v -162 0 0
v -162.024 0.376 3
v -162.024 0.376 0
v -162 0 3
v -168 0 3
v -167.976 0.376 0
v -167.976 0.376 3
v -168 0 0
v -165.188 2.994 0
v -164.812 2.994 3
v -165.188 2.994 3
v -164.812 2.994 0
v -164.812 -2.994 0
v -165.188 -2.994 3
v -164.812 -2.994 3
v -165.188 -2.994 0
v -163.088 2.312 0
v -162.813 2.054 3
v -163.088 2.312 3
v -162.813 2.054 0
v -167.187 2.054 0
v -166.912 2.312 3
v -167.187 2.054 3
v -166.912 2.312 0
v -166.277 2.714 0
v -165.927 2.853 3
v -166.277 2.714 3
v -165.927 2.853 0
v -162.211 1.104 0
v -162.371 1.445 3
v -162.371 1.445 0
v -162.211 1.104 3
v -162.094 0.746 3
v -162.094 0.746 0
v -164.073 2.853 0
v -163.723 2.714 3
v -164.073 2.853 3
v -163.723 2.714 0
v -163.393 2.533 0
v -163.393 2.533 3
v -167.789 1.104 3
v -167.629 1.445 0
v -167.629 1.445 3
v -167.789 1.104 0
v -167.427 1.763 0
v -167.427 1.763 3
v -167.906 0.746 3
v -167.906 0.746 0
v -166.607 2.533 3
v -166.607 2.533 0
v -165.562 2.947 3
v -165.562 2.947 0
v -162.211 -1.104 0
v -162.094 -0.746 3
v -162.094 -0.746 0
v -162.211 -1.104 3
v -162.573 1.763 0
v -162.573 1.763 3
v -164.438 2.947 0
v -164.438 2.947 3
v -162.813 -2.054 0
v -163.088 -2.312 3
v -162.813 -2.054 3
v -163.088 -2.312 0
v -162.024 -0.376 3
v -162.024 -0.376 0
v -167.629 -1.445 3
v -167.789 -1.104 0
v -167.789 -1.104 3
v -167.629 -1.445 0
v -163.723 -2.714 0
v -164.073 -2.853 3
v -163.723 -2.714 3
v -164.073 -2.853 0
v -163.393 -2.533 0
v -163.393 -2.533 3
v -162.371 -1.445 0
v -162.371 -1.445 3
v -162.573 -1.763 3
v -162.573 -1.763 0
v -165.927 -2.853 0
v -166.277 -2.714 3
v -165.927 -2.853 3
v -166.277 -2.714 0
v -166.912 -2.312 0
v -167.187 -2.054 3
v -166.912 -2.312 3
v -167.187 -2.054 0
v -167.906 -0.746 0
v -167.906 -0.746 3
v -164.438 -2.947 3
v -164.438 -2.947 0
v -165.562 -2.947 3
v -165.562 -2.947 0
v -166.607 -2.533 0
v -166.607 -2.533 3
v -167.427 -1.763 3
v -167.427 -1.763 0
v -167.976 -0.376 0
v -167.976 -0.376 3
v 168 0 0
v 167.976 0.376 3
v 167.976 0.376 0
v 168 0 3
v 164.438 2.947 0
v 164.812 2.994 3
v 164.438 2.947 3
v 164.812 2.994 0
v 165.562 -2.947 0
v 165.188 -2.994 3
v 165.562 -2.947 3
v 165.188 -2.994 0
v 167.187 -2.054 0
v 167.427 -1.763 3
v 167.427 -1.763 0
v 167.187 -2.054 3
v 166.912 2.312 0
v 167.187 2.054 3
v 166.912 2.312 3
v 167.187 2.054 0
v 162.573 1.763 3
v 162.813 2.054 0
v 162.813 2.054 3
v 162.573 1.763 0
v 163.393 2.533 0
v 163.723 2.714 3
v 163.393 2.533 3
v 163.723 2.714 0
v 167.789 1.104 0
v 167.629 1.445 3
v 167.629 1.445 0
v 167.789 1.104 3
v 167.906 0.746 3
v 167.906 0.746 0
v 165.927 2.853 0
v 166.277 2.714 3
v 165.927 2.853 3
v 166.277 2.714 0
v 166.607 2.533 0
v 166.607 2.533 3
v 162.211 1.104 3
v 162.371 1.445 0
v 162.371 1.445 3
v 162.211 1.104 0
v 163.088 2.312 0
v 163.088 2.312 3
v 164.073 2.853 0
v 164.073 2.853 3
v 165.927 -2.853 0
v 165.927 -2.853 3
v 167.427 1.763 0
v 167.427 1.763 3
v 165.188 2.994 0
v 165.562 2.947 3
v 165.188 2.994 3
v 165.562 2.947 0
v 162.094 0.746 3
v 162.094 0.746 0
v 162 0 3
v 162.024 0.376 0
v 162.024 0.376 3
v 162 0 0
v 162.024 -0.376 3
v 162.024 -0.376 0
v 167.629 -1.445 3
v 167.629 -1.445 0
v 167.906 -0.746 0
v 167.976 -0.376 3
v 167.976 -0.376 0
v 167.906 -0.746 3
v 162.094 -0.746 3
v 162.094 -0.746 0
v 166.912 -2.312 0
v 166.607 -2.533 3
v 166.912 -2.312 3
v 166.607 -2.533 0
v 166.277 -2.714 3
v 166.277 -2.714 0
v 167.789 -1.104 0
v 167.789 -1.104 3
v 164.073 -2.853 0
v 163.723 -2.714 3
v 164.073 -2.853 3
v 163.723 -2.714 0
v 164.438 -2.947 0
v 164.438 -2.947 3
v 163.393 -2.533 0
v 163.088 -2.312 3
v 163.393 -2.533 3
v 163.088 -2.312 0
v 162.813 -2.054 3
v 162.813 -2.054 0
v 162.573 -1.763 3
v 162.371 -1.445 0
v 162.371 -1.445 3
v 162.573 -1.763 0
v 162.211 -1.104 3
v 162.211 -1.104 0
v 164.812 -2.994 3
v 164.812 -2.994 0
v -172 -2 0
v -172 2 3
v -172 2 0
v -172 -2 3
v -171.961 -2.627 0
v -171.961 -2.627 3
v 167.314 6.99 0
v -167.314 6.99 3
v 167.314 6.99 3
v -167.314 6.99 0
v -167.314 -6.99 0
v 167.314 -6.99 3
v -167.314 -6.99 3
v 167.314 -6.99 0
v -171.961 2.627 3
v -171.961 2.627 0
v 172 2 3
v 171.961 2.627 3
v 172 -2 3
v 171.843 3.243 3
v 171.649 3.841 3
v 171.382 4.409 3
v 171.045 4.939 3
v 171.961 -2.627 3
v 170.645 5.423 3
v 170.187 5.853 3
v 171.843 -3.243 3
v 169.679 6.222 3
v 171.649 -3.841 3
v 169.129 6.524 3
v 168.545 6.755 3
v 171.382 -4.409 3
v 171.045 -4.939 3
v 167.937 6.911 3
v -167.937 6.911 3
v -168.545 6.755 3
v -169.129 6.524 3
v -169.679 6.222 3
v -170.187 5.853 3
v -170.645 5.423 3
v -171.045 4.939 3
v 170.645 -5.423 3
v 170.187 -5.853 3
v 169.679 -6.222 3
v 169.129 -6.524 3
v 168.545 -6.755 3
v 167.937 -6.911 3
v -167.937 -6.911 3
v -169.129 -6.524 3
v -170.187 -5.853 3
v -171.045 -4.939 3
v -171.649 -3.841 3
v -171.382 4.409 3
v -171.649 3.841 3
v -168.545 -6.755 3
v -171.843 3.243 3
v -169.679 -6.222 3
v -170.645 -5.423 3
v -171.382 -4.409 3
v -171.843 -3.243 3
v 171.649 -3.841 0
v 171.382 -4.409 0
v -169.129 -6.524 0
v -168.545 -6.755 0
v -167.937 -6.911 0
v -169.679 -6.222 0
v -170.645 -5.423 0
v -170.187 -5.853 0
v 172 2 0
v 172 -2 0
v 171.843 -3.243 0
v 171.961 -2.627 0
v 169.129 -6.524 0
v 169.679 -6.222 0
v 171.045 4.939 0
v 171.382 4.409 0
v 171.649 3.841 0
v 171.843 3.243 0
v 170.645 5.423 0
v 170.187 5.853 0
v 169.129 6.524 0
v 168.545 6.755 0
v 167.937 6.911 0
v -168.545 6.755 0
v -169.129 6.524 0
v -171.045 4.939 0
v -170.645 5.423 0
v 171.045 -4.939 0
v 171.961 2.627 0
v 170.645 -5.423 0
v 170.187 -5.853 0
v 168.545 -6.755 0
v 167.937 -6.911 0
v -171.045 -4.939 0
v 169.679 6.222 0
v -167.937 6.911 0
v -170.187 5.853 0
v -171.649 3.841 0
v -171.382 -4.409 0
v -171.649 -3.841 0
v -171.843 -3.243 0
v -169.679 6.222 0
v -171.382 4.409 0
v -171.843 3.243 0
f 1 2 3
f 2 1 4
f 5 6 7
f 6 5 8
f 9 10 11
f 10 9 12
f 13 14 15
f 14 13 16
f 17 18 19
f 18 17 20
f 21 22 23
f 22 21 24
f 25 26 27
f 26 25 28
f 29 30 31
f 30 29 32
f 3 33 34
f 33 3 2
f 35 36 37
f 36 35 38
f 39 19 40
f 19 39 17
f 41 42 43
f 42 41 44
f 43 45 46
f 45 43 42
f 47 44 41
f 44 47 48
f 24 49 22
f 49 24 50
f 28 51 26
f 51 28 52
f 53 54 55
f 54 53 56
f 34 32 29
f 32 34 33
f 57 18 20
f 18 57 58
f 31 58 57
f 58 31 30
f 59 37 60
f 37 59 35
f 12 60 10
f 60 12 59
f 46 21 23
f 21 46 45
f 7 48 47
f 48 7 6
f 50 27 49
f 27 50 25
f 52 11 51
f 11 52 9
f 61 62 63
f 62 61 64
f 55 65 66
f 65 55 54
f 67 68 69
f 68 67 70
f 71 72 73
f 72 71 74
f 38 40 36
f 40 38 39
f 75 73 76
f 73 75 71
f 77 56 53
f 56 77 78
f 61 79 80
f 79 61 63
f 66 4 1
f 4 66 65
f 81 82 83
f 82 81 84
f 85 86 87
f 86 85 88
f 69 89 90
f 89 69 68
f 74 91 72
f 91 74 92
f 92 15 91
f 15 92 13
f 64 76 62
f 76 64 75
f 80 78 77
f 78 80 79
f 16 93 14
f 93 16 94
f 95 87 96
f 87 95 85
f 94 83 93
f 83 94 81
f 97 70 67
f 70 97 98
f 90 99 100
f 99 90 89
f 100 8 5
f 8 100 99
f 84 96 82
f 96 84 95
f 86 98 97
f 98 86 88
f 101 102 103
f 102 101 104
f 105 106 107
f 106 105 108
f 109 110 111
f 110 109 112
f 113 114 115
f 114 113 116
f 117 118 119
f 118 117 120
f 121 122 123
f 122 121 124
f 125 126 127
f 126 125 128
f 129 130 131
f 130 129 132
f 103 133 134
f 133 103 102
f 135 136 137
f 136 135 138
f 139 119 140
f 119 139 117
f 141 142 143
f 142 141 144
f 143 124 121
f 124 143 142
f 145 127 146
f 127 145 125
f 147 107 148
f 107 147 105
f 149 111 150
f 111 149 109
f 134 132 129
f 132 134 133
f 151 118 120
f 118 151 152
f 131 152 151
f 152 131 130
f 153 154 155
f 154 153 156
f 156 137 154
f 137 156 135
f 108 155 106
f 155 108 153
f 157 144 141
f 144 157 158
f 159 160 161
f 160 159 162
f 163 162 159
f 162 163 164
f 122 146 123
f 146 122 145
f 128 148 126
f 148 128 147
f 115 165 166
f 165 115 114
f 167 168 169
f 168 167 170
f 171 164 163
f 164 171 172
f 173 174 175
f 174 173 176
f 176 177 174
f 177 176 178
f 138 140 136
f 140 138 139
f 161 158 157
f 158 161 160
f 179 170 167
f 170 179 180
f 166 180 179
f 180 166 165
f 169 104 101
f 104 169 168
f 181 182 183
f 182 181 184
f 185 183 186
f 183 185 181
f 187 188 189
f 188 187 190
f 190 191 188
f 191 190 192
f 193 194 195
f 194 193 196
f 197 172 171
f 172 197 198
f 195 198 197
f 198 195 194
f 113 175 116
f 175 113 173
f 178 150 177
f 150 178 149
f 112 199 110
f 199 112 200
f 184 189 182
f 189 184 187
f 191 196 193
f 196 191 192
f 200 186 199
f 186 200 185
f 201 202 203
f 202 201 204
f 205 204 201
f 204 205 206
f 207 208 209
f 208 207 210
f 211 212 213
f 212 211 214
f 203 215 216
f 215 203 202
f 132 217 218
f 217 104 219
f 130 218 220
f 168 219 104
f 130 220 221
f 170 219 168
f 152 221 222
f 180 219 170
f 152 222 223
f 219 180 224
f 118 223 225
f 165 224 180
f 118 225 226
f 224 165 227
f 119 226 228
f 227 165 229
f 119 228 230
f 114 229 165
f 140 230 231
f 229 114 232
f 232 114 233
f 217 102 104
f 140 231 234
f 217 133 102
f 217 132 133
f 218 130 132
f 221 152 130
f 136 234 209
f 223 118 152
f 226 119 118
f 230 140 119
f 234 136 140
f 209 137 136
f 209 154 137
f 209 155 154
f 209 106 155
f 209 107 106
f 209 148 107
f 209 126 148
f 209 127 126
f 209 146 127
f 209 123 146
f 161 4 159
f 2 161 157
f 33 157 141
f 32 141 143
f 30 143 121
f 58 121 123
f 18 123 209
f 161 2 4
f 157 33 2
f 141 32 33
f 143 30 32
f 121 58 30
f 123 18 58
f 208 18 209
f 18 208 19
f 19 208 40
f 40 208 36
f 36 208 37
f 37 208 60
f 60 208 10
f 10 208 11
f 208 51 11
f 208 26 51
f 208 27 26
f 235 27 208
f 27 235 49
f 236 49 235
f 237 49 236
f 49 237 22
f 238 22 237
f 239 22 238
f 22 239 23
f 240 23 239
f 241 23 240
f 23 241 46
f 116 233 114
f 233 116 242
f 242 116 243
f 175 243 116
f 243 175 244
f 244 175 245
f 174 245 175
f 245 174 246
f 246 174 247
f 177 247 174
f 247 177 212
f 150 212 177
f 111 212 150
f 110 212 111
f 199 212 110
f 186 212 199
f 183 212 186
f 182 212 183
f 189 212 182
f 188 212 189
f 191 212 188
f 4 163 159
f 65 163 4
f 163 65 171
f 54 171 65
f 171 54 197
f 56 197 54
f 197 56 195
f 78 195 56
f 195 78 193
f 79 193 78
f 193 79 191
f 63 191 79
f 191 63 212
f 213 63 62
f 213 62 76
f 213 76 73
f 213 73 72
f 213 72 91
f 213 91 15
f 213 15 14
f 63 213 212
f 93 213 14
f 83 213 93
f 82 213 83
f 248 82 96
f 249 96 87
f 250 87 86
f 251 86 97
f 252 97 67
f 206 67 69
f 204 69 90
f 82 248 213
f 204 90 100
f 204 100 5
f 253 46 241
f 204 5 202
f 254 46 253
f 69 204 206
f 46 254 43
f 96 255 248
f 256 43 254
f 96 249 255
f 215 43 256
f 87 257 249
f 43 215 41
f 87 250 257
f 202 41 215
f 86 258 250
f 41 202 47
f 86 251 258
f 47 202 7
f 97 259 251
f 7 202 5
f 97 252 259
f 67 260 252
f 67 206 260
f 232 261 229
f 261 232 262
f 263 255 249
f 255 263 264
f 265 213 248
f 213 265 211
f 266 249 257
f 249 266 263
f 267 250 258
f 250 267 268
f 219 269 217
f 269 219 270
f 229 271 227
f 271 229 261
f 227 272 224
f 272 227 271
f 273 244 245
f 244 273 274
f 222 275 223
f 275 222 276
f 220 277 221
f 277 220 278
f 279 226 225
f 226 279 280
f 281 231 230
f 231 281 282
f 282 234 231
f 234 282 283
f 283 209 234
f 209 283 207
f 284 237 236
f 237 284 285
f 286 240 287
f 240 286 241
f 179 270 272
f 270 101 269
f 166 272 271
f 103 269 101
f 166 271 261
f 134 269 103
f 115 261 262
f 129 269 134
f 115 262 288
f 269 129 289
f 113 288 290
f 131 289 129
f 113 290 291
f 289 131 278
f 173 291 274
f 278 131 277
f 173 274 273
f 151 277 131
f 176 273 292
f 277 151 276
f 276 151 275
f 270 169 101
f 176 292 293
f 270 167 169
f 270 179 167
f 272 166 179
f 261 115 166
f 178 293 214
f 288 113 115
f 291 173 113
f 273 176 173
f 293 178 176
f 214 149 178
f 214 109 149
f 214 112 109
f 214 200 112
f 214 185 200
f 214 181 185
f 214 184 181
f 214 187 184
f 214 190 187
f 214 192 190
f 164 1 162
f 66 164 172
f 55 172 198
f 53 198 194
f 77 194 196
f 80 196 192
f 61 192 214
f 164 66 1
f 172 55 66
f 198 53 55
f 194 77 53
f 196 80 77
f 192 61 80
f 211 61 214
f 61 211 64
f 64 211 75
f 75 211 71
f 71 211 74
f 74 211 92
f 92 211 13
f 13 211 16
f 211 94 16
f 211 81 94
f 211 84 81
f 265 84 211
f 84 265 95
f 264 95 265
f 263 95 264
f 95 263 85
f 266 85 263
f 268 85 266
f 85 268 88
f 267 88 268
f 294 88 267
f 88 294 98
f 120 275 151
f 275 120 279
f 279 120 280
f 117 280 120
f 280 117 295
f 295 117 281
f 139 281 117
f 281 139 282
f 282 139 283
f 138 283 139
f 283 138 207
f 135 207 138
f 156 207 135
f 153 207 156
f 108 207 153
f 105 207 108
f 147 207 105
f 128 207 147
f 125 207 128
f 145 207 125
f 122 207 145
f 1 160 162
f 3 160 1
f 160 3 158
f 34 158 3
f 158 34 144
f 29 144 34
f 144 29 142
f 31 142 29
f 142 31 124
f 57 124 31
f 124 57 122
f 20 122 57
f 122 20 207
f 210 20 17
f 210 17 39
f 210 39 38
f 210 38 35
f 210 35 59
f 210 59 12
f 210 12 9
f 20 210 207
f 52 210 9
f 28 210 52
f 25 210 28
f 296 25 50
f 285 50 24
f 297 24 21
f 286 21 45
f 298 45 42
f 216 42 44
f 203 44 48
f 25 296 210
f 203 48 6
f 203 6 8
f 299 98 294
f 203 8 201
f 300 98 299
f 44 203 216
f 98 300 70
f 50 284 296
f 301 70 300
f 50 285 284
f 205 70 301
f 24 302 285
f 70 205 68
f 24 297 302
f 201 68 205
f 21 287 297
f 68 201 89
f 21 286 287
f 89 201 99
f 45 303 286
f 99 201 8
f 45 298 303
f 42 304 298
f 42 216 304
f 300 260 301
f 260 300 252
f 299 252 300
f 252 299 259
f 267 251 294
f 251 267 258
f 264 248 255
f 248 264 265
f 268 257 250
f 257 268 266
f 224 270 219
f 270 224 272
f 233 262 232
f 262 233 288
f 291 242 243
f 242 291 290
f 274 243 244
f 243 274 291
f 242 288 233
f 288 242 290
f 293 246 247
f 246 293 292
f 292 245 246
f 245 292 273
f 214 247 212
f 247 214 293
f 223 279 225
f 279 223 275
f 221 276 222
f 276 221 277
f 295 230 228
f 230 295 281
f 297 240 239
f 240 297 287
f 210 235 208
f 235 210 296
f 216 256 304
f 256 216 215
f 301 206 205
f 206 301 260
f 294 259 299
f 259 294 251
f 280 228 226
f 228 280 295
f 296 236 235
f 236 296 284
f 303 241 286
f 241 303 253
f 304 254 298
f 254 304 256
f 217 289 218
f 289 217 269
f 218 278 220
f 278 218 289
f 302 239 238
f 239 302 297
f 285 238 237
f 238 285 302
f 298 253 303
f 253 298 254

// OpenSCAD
$fn = 50;


difference() {
	union() {
		hull() {
			translate(v = [-167.0000000000, 2.0000000000, 0]) {
				cylinder(h = 3, r = 5);
			}
			translate(v = [167.0000000000, 2.0000000000, 0]) {
				cylinder(h = 3, r = 5);
			}
			translate(v = [-167.0000000000, -2.0000000000, 0]) {
				cylinder(h = 3, r = 5);
			}
			translate(v = [167.0000000000, -2.0000000000, 0]) {
				cylinder(h = 3, r = 5);
			}
		}
	}
	union() {
		translate(v = [-165.0000000000, 0.0000000000, -100.0000000000]) {
			cylinder(h = 200, r = 3.0000000000);
		}
		translate(v = [-165.0000000000, 0.0000000000, -100.0000000000]) {
			cylinder(h = 200, r = 3.0000000000);
		}
		translate(v = [165.0000000000, 0.0000000000, -100.0000000000]) {
			cylinder(h = 200, r = 3.0000000000);
		}
		translate(v = [165.0000000000, 0.0000000000, -100.0000000000]) {
			cylinder(h = 200, r = 3.0000000000);
		}
	}
}
